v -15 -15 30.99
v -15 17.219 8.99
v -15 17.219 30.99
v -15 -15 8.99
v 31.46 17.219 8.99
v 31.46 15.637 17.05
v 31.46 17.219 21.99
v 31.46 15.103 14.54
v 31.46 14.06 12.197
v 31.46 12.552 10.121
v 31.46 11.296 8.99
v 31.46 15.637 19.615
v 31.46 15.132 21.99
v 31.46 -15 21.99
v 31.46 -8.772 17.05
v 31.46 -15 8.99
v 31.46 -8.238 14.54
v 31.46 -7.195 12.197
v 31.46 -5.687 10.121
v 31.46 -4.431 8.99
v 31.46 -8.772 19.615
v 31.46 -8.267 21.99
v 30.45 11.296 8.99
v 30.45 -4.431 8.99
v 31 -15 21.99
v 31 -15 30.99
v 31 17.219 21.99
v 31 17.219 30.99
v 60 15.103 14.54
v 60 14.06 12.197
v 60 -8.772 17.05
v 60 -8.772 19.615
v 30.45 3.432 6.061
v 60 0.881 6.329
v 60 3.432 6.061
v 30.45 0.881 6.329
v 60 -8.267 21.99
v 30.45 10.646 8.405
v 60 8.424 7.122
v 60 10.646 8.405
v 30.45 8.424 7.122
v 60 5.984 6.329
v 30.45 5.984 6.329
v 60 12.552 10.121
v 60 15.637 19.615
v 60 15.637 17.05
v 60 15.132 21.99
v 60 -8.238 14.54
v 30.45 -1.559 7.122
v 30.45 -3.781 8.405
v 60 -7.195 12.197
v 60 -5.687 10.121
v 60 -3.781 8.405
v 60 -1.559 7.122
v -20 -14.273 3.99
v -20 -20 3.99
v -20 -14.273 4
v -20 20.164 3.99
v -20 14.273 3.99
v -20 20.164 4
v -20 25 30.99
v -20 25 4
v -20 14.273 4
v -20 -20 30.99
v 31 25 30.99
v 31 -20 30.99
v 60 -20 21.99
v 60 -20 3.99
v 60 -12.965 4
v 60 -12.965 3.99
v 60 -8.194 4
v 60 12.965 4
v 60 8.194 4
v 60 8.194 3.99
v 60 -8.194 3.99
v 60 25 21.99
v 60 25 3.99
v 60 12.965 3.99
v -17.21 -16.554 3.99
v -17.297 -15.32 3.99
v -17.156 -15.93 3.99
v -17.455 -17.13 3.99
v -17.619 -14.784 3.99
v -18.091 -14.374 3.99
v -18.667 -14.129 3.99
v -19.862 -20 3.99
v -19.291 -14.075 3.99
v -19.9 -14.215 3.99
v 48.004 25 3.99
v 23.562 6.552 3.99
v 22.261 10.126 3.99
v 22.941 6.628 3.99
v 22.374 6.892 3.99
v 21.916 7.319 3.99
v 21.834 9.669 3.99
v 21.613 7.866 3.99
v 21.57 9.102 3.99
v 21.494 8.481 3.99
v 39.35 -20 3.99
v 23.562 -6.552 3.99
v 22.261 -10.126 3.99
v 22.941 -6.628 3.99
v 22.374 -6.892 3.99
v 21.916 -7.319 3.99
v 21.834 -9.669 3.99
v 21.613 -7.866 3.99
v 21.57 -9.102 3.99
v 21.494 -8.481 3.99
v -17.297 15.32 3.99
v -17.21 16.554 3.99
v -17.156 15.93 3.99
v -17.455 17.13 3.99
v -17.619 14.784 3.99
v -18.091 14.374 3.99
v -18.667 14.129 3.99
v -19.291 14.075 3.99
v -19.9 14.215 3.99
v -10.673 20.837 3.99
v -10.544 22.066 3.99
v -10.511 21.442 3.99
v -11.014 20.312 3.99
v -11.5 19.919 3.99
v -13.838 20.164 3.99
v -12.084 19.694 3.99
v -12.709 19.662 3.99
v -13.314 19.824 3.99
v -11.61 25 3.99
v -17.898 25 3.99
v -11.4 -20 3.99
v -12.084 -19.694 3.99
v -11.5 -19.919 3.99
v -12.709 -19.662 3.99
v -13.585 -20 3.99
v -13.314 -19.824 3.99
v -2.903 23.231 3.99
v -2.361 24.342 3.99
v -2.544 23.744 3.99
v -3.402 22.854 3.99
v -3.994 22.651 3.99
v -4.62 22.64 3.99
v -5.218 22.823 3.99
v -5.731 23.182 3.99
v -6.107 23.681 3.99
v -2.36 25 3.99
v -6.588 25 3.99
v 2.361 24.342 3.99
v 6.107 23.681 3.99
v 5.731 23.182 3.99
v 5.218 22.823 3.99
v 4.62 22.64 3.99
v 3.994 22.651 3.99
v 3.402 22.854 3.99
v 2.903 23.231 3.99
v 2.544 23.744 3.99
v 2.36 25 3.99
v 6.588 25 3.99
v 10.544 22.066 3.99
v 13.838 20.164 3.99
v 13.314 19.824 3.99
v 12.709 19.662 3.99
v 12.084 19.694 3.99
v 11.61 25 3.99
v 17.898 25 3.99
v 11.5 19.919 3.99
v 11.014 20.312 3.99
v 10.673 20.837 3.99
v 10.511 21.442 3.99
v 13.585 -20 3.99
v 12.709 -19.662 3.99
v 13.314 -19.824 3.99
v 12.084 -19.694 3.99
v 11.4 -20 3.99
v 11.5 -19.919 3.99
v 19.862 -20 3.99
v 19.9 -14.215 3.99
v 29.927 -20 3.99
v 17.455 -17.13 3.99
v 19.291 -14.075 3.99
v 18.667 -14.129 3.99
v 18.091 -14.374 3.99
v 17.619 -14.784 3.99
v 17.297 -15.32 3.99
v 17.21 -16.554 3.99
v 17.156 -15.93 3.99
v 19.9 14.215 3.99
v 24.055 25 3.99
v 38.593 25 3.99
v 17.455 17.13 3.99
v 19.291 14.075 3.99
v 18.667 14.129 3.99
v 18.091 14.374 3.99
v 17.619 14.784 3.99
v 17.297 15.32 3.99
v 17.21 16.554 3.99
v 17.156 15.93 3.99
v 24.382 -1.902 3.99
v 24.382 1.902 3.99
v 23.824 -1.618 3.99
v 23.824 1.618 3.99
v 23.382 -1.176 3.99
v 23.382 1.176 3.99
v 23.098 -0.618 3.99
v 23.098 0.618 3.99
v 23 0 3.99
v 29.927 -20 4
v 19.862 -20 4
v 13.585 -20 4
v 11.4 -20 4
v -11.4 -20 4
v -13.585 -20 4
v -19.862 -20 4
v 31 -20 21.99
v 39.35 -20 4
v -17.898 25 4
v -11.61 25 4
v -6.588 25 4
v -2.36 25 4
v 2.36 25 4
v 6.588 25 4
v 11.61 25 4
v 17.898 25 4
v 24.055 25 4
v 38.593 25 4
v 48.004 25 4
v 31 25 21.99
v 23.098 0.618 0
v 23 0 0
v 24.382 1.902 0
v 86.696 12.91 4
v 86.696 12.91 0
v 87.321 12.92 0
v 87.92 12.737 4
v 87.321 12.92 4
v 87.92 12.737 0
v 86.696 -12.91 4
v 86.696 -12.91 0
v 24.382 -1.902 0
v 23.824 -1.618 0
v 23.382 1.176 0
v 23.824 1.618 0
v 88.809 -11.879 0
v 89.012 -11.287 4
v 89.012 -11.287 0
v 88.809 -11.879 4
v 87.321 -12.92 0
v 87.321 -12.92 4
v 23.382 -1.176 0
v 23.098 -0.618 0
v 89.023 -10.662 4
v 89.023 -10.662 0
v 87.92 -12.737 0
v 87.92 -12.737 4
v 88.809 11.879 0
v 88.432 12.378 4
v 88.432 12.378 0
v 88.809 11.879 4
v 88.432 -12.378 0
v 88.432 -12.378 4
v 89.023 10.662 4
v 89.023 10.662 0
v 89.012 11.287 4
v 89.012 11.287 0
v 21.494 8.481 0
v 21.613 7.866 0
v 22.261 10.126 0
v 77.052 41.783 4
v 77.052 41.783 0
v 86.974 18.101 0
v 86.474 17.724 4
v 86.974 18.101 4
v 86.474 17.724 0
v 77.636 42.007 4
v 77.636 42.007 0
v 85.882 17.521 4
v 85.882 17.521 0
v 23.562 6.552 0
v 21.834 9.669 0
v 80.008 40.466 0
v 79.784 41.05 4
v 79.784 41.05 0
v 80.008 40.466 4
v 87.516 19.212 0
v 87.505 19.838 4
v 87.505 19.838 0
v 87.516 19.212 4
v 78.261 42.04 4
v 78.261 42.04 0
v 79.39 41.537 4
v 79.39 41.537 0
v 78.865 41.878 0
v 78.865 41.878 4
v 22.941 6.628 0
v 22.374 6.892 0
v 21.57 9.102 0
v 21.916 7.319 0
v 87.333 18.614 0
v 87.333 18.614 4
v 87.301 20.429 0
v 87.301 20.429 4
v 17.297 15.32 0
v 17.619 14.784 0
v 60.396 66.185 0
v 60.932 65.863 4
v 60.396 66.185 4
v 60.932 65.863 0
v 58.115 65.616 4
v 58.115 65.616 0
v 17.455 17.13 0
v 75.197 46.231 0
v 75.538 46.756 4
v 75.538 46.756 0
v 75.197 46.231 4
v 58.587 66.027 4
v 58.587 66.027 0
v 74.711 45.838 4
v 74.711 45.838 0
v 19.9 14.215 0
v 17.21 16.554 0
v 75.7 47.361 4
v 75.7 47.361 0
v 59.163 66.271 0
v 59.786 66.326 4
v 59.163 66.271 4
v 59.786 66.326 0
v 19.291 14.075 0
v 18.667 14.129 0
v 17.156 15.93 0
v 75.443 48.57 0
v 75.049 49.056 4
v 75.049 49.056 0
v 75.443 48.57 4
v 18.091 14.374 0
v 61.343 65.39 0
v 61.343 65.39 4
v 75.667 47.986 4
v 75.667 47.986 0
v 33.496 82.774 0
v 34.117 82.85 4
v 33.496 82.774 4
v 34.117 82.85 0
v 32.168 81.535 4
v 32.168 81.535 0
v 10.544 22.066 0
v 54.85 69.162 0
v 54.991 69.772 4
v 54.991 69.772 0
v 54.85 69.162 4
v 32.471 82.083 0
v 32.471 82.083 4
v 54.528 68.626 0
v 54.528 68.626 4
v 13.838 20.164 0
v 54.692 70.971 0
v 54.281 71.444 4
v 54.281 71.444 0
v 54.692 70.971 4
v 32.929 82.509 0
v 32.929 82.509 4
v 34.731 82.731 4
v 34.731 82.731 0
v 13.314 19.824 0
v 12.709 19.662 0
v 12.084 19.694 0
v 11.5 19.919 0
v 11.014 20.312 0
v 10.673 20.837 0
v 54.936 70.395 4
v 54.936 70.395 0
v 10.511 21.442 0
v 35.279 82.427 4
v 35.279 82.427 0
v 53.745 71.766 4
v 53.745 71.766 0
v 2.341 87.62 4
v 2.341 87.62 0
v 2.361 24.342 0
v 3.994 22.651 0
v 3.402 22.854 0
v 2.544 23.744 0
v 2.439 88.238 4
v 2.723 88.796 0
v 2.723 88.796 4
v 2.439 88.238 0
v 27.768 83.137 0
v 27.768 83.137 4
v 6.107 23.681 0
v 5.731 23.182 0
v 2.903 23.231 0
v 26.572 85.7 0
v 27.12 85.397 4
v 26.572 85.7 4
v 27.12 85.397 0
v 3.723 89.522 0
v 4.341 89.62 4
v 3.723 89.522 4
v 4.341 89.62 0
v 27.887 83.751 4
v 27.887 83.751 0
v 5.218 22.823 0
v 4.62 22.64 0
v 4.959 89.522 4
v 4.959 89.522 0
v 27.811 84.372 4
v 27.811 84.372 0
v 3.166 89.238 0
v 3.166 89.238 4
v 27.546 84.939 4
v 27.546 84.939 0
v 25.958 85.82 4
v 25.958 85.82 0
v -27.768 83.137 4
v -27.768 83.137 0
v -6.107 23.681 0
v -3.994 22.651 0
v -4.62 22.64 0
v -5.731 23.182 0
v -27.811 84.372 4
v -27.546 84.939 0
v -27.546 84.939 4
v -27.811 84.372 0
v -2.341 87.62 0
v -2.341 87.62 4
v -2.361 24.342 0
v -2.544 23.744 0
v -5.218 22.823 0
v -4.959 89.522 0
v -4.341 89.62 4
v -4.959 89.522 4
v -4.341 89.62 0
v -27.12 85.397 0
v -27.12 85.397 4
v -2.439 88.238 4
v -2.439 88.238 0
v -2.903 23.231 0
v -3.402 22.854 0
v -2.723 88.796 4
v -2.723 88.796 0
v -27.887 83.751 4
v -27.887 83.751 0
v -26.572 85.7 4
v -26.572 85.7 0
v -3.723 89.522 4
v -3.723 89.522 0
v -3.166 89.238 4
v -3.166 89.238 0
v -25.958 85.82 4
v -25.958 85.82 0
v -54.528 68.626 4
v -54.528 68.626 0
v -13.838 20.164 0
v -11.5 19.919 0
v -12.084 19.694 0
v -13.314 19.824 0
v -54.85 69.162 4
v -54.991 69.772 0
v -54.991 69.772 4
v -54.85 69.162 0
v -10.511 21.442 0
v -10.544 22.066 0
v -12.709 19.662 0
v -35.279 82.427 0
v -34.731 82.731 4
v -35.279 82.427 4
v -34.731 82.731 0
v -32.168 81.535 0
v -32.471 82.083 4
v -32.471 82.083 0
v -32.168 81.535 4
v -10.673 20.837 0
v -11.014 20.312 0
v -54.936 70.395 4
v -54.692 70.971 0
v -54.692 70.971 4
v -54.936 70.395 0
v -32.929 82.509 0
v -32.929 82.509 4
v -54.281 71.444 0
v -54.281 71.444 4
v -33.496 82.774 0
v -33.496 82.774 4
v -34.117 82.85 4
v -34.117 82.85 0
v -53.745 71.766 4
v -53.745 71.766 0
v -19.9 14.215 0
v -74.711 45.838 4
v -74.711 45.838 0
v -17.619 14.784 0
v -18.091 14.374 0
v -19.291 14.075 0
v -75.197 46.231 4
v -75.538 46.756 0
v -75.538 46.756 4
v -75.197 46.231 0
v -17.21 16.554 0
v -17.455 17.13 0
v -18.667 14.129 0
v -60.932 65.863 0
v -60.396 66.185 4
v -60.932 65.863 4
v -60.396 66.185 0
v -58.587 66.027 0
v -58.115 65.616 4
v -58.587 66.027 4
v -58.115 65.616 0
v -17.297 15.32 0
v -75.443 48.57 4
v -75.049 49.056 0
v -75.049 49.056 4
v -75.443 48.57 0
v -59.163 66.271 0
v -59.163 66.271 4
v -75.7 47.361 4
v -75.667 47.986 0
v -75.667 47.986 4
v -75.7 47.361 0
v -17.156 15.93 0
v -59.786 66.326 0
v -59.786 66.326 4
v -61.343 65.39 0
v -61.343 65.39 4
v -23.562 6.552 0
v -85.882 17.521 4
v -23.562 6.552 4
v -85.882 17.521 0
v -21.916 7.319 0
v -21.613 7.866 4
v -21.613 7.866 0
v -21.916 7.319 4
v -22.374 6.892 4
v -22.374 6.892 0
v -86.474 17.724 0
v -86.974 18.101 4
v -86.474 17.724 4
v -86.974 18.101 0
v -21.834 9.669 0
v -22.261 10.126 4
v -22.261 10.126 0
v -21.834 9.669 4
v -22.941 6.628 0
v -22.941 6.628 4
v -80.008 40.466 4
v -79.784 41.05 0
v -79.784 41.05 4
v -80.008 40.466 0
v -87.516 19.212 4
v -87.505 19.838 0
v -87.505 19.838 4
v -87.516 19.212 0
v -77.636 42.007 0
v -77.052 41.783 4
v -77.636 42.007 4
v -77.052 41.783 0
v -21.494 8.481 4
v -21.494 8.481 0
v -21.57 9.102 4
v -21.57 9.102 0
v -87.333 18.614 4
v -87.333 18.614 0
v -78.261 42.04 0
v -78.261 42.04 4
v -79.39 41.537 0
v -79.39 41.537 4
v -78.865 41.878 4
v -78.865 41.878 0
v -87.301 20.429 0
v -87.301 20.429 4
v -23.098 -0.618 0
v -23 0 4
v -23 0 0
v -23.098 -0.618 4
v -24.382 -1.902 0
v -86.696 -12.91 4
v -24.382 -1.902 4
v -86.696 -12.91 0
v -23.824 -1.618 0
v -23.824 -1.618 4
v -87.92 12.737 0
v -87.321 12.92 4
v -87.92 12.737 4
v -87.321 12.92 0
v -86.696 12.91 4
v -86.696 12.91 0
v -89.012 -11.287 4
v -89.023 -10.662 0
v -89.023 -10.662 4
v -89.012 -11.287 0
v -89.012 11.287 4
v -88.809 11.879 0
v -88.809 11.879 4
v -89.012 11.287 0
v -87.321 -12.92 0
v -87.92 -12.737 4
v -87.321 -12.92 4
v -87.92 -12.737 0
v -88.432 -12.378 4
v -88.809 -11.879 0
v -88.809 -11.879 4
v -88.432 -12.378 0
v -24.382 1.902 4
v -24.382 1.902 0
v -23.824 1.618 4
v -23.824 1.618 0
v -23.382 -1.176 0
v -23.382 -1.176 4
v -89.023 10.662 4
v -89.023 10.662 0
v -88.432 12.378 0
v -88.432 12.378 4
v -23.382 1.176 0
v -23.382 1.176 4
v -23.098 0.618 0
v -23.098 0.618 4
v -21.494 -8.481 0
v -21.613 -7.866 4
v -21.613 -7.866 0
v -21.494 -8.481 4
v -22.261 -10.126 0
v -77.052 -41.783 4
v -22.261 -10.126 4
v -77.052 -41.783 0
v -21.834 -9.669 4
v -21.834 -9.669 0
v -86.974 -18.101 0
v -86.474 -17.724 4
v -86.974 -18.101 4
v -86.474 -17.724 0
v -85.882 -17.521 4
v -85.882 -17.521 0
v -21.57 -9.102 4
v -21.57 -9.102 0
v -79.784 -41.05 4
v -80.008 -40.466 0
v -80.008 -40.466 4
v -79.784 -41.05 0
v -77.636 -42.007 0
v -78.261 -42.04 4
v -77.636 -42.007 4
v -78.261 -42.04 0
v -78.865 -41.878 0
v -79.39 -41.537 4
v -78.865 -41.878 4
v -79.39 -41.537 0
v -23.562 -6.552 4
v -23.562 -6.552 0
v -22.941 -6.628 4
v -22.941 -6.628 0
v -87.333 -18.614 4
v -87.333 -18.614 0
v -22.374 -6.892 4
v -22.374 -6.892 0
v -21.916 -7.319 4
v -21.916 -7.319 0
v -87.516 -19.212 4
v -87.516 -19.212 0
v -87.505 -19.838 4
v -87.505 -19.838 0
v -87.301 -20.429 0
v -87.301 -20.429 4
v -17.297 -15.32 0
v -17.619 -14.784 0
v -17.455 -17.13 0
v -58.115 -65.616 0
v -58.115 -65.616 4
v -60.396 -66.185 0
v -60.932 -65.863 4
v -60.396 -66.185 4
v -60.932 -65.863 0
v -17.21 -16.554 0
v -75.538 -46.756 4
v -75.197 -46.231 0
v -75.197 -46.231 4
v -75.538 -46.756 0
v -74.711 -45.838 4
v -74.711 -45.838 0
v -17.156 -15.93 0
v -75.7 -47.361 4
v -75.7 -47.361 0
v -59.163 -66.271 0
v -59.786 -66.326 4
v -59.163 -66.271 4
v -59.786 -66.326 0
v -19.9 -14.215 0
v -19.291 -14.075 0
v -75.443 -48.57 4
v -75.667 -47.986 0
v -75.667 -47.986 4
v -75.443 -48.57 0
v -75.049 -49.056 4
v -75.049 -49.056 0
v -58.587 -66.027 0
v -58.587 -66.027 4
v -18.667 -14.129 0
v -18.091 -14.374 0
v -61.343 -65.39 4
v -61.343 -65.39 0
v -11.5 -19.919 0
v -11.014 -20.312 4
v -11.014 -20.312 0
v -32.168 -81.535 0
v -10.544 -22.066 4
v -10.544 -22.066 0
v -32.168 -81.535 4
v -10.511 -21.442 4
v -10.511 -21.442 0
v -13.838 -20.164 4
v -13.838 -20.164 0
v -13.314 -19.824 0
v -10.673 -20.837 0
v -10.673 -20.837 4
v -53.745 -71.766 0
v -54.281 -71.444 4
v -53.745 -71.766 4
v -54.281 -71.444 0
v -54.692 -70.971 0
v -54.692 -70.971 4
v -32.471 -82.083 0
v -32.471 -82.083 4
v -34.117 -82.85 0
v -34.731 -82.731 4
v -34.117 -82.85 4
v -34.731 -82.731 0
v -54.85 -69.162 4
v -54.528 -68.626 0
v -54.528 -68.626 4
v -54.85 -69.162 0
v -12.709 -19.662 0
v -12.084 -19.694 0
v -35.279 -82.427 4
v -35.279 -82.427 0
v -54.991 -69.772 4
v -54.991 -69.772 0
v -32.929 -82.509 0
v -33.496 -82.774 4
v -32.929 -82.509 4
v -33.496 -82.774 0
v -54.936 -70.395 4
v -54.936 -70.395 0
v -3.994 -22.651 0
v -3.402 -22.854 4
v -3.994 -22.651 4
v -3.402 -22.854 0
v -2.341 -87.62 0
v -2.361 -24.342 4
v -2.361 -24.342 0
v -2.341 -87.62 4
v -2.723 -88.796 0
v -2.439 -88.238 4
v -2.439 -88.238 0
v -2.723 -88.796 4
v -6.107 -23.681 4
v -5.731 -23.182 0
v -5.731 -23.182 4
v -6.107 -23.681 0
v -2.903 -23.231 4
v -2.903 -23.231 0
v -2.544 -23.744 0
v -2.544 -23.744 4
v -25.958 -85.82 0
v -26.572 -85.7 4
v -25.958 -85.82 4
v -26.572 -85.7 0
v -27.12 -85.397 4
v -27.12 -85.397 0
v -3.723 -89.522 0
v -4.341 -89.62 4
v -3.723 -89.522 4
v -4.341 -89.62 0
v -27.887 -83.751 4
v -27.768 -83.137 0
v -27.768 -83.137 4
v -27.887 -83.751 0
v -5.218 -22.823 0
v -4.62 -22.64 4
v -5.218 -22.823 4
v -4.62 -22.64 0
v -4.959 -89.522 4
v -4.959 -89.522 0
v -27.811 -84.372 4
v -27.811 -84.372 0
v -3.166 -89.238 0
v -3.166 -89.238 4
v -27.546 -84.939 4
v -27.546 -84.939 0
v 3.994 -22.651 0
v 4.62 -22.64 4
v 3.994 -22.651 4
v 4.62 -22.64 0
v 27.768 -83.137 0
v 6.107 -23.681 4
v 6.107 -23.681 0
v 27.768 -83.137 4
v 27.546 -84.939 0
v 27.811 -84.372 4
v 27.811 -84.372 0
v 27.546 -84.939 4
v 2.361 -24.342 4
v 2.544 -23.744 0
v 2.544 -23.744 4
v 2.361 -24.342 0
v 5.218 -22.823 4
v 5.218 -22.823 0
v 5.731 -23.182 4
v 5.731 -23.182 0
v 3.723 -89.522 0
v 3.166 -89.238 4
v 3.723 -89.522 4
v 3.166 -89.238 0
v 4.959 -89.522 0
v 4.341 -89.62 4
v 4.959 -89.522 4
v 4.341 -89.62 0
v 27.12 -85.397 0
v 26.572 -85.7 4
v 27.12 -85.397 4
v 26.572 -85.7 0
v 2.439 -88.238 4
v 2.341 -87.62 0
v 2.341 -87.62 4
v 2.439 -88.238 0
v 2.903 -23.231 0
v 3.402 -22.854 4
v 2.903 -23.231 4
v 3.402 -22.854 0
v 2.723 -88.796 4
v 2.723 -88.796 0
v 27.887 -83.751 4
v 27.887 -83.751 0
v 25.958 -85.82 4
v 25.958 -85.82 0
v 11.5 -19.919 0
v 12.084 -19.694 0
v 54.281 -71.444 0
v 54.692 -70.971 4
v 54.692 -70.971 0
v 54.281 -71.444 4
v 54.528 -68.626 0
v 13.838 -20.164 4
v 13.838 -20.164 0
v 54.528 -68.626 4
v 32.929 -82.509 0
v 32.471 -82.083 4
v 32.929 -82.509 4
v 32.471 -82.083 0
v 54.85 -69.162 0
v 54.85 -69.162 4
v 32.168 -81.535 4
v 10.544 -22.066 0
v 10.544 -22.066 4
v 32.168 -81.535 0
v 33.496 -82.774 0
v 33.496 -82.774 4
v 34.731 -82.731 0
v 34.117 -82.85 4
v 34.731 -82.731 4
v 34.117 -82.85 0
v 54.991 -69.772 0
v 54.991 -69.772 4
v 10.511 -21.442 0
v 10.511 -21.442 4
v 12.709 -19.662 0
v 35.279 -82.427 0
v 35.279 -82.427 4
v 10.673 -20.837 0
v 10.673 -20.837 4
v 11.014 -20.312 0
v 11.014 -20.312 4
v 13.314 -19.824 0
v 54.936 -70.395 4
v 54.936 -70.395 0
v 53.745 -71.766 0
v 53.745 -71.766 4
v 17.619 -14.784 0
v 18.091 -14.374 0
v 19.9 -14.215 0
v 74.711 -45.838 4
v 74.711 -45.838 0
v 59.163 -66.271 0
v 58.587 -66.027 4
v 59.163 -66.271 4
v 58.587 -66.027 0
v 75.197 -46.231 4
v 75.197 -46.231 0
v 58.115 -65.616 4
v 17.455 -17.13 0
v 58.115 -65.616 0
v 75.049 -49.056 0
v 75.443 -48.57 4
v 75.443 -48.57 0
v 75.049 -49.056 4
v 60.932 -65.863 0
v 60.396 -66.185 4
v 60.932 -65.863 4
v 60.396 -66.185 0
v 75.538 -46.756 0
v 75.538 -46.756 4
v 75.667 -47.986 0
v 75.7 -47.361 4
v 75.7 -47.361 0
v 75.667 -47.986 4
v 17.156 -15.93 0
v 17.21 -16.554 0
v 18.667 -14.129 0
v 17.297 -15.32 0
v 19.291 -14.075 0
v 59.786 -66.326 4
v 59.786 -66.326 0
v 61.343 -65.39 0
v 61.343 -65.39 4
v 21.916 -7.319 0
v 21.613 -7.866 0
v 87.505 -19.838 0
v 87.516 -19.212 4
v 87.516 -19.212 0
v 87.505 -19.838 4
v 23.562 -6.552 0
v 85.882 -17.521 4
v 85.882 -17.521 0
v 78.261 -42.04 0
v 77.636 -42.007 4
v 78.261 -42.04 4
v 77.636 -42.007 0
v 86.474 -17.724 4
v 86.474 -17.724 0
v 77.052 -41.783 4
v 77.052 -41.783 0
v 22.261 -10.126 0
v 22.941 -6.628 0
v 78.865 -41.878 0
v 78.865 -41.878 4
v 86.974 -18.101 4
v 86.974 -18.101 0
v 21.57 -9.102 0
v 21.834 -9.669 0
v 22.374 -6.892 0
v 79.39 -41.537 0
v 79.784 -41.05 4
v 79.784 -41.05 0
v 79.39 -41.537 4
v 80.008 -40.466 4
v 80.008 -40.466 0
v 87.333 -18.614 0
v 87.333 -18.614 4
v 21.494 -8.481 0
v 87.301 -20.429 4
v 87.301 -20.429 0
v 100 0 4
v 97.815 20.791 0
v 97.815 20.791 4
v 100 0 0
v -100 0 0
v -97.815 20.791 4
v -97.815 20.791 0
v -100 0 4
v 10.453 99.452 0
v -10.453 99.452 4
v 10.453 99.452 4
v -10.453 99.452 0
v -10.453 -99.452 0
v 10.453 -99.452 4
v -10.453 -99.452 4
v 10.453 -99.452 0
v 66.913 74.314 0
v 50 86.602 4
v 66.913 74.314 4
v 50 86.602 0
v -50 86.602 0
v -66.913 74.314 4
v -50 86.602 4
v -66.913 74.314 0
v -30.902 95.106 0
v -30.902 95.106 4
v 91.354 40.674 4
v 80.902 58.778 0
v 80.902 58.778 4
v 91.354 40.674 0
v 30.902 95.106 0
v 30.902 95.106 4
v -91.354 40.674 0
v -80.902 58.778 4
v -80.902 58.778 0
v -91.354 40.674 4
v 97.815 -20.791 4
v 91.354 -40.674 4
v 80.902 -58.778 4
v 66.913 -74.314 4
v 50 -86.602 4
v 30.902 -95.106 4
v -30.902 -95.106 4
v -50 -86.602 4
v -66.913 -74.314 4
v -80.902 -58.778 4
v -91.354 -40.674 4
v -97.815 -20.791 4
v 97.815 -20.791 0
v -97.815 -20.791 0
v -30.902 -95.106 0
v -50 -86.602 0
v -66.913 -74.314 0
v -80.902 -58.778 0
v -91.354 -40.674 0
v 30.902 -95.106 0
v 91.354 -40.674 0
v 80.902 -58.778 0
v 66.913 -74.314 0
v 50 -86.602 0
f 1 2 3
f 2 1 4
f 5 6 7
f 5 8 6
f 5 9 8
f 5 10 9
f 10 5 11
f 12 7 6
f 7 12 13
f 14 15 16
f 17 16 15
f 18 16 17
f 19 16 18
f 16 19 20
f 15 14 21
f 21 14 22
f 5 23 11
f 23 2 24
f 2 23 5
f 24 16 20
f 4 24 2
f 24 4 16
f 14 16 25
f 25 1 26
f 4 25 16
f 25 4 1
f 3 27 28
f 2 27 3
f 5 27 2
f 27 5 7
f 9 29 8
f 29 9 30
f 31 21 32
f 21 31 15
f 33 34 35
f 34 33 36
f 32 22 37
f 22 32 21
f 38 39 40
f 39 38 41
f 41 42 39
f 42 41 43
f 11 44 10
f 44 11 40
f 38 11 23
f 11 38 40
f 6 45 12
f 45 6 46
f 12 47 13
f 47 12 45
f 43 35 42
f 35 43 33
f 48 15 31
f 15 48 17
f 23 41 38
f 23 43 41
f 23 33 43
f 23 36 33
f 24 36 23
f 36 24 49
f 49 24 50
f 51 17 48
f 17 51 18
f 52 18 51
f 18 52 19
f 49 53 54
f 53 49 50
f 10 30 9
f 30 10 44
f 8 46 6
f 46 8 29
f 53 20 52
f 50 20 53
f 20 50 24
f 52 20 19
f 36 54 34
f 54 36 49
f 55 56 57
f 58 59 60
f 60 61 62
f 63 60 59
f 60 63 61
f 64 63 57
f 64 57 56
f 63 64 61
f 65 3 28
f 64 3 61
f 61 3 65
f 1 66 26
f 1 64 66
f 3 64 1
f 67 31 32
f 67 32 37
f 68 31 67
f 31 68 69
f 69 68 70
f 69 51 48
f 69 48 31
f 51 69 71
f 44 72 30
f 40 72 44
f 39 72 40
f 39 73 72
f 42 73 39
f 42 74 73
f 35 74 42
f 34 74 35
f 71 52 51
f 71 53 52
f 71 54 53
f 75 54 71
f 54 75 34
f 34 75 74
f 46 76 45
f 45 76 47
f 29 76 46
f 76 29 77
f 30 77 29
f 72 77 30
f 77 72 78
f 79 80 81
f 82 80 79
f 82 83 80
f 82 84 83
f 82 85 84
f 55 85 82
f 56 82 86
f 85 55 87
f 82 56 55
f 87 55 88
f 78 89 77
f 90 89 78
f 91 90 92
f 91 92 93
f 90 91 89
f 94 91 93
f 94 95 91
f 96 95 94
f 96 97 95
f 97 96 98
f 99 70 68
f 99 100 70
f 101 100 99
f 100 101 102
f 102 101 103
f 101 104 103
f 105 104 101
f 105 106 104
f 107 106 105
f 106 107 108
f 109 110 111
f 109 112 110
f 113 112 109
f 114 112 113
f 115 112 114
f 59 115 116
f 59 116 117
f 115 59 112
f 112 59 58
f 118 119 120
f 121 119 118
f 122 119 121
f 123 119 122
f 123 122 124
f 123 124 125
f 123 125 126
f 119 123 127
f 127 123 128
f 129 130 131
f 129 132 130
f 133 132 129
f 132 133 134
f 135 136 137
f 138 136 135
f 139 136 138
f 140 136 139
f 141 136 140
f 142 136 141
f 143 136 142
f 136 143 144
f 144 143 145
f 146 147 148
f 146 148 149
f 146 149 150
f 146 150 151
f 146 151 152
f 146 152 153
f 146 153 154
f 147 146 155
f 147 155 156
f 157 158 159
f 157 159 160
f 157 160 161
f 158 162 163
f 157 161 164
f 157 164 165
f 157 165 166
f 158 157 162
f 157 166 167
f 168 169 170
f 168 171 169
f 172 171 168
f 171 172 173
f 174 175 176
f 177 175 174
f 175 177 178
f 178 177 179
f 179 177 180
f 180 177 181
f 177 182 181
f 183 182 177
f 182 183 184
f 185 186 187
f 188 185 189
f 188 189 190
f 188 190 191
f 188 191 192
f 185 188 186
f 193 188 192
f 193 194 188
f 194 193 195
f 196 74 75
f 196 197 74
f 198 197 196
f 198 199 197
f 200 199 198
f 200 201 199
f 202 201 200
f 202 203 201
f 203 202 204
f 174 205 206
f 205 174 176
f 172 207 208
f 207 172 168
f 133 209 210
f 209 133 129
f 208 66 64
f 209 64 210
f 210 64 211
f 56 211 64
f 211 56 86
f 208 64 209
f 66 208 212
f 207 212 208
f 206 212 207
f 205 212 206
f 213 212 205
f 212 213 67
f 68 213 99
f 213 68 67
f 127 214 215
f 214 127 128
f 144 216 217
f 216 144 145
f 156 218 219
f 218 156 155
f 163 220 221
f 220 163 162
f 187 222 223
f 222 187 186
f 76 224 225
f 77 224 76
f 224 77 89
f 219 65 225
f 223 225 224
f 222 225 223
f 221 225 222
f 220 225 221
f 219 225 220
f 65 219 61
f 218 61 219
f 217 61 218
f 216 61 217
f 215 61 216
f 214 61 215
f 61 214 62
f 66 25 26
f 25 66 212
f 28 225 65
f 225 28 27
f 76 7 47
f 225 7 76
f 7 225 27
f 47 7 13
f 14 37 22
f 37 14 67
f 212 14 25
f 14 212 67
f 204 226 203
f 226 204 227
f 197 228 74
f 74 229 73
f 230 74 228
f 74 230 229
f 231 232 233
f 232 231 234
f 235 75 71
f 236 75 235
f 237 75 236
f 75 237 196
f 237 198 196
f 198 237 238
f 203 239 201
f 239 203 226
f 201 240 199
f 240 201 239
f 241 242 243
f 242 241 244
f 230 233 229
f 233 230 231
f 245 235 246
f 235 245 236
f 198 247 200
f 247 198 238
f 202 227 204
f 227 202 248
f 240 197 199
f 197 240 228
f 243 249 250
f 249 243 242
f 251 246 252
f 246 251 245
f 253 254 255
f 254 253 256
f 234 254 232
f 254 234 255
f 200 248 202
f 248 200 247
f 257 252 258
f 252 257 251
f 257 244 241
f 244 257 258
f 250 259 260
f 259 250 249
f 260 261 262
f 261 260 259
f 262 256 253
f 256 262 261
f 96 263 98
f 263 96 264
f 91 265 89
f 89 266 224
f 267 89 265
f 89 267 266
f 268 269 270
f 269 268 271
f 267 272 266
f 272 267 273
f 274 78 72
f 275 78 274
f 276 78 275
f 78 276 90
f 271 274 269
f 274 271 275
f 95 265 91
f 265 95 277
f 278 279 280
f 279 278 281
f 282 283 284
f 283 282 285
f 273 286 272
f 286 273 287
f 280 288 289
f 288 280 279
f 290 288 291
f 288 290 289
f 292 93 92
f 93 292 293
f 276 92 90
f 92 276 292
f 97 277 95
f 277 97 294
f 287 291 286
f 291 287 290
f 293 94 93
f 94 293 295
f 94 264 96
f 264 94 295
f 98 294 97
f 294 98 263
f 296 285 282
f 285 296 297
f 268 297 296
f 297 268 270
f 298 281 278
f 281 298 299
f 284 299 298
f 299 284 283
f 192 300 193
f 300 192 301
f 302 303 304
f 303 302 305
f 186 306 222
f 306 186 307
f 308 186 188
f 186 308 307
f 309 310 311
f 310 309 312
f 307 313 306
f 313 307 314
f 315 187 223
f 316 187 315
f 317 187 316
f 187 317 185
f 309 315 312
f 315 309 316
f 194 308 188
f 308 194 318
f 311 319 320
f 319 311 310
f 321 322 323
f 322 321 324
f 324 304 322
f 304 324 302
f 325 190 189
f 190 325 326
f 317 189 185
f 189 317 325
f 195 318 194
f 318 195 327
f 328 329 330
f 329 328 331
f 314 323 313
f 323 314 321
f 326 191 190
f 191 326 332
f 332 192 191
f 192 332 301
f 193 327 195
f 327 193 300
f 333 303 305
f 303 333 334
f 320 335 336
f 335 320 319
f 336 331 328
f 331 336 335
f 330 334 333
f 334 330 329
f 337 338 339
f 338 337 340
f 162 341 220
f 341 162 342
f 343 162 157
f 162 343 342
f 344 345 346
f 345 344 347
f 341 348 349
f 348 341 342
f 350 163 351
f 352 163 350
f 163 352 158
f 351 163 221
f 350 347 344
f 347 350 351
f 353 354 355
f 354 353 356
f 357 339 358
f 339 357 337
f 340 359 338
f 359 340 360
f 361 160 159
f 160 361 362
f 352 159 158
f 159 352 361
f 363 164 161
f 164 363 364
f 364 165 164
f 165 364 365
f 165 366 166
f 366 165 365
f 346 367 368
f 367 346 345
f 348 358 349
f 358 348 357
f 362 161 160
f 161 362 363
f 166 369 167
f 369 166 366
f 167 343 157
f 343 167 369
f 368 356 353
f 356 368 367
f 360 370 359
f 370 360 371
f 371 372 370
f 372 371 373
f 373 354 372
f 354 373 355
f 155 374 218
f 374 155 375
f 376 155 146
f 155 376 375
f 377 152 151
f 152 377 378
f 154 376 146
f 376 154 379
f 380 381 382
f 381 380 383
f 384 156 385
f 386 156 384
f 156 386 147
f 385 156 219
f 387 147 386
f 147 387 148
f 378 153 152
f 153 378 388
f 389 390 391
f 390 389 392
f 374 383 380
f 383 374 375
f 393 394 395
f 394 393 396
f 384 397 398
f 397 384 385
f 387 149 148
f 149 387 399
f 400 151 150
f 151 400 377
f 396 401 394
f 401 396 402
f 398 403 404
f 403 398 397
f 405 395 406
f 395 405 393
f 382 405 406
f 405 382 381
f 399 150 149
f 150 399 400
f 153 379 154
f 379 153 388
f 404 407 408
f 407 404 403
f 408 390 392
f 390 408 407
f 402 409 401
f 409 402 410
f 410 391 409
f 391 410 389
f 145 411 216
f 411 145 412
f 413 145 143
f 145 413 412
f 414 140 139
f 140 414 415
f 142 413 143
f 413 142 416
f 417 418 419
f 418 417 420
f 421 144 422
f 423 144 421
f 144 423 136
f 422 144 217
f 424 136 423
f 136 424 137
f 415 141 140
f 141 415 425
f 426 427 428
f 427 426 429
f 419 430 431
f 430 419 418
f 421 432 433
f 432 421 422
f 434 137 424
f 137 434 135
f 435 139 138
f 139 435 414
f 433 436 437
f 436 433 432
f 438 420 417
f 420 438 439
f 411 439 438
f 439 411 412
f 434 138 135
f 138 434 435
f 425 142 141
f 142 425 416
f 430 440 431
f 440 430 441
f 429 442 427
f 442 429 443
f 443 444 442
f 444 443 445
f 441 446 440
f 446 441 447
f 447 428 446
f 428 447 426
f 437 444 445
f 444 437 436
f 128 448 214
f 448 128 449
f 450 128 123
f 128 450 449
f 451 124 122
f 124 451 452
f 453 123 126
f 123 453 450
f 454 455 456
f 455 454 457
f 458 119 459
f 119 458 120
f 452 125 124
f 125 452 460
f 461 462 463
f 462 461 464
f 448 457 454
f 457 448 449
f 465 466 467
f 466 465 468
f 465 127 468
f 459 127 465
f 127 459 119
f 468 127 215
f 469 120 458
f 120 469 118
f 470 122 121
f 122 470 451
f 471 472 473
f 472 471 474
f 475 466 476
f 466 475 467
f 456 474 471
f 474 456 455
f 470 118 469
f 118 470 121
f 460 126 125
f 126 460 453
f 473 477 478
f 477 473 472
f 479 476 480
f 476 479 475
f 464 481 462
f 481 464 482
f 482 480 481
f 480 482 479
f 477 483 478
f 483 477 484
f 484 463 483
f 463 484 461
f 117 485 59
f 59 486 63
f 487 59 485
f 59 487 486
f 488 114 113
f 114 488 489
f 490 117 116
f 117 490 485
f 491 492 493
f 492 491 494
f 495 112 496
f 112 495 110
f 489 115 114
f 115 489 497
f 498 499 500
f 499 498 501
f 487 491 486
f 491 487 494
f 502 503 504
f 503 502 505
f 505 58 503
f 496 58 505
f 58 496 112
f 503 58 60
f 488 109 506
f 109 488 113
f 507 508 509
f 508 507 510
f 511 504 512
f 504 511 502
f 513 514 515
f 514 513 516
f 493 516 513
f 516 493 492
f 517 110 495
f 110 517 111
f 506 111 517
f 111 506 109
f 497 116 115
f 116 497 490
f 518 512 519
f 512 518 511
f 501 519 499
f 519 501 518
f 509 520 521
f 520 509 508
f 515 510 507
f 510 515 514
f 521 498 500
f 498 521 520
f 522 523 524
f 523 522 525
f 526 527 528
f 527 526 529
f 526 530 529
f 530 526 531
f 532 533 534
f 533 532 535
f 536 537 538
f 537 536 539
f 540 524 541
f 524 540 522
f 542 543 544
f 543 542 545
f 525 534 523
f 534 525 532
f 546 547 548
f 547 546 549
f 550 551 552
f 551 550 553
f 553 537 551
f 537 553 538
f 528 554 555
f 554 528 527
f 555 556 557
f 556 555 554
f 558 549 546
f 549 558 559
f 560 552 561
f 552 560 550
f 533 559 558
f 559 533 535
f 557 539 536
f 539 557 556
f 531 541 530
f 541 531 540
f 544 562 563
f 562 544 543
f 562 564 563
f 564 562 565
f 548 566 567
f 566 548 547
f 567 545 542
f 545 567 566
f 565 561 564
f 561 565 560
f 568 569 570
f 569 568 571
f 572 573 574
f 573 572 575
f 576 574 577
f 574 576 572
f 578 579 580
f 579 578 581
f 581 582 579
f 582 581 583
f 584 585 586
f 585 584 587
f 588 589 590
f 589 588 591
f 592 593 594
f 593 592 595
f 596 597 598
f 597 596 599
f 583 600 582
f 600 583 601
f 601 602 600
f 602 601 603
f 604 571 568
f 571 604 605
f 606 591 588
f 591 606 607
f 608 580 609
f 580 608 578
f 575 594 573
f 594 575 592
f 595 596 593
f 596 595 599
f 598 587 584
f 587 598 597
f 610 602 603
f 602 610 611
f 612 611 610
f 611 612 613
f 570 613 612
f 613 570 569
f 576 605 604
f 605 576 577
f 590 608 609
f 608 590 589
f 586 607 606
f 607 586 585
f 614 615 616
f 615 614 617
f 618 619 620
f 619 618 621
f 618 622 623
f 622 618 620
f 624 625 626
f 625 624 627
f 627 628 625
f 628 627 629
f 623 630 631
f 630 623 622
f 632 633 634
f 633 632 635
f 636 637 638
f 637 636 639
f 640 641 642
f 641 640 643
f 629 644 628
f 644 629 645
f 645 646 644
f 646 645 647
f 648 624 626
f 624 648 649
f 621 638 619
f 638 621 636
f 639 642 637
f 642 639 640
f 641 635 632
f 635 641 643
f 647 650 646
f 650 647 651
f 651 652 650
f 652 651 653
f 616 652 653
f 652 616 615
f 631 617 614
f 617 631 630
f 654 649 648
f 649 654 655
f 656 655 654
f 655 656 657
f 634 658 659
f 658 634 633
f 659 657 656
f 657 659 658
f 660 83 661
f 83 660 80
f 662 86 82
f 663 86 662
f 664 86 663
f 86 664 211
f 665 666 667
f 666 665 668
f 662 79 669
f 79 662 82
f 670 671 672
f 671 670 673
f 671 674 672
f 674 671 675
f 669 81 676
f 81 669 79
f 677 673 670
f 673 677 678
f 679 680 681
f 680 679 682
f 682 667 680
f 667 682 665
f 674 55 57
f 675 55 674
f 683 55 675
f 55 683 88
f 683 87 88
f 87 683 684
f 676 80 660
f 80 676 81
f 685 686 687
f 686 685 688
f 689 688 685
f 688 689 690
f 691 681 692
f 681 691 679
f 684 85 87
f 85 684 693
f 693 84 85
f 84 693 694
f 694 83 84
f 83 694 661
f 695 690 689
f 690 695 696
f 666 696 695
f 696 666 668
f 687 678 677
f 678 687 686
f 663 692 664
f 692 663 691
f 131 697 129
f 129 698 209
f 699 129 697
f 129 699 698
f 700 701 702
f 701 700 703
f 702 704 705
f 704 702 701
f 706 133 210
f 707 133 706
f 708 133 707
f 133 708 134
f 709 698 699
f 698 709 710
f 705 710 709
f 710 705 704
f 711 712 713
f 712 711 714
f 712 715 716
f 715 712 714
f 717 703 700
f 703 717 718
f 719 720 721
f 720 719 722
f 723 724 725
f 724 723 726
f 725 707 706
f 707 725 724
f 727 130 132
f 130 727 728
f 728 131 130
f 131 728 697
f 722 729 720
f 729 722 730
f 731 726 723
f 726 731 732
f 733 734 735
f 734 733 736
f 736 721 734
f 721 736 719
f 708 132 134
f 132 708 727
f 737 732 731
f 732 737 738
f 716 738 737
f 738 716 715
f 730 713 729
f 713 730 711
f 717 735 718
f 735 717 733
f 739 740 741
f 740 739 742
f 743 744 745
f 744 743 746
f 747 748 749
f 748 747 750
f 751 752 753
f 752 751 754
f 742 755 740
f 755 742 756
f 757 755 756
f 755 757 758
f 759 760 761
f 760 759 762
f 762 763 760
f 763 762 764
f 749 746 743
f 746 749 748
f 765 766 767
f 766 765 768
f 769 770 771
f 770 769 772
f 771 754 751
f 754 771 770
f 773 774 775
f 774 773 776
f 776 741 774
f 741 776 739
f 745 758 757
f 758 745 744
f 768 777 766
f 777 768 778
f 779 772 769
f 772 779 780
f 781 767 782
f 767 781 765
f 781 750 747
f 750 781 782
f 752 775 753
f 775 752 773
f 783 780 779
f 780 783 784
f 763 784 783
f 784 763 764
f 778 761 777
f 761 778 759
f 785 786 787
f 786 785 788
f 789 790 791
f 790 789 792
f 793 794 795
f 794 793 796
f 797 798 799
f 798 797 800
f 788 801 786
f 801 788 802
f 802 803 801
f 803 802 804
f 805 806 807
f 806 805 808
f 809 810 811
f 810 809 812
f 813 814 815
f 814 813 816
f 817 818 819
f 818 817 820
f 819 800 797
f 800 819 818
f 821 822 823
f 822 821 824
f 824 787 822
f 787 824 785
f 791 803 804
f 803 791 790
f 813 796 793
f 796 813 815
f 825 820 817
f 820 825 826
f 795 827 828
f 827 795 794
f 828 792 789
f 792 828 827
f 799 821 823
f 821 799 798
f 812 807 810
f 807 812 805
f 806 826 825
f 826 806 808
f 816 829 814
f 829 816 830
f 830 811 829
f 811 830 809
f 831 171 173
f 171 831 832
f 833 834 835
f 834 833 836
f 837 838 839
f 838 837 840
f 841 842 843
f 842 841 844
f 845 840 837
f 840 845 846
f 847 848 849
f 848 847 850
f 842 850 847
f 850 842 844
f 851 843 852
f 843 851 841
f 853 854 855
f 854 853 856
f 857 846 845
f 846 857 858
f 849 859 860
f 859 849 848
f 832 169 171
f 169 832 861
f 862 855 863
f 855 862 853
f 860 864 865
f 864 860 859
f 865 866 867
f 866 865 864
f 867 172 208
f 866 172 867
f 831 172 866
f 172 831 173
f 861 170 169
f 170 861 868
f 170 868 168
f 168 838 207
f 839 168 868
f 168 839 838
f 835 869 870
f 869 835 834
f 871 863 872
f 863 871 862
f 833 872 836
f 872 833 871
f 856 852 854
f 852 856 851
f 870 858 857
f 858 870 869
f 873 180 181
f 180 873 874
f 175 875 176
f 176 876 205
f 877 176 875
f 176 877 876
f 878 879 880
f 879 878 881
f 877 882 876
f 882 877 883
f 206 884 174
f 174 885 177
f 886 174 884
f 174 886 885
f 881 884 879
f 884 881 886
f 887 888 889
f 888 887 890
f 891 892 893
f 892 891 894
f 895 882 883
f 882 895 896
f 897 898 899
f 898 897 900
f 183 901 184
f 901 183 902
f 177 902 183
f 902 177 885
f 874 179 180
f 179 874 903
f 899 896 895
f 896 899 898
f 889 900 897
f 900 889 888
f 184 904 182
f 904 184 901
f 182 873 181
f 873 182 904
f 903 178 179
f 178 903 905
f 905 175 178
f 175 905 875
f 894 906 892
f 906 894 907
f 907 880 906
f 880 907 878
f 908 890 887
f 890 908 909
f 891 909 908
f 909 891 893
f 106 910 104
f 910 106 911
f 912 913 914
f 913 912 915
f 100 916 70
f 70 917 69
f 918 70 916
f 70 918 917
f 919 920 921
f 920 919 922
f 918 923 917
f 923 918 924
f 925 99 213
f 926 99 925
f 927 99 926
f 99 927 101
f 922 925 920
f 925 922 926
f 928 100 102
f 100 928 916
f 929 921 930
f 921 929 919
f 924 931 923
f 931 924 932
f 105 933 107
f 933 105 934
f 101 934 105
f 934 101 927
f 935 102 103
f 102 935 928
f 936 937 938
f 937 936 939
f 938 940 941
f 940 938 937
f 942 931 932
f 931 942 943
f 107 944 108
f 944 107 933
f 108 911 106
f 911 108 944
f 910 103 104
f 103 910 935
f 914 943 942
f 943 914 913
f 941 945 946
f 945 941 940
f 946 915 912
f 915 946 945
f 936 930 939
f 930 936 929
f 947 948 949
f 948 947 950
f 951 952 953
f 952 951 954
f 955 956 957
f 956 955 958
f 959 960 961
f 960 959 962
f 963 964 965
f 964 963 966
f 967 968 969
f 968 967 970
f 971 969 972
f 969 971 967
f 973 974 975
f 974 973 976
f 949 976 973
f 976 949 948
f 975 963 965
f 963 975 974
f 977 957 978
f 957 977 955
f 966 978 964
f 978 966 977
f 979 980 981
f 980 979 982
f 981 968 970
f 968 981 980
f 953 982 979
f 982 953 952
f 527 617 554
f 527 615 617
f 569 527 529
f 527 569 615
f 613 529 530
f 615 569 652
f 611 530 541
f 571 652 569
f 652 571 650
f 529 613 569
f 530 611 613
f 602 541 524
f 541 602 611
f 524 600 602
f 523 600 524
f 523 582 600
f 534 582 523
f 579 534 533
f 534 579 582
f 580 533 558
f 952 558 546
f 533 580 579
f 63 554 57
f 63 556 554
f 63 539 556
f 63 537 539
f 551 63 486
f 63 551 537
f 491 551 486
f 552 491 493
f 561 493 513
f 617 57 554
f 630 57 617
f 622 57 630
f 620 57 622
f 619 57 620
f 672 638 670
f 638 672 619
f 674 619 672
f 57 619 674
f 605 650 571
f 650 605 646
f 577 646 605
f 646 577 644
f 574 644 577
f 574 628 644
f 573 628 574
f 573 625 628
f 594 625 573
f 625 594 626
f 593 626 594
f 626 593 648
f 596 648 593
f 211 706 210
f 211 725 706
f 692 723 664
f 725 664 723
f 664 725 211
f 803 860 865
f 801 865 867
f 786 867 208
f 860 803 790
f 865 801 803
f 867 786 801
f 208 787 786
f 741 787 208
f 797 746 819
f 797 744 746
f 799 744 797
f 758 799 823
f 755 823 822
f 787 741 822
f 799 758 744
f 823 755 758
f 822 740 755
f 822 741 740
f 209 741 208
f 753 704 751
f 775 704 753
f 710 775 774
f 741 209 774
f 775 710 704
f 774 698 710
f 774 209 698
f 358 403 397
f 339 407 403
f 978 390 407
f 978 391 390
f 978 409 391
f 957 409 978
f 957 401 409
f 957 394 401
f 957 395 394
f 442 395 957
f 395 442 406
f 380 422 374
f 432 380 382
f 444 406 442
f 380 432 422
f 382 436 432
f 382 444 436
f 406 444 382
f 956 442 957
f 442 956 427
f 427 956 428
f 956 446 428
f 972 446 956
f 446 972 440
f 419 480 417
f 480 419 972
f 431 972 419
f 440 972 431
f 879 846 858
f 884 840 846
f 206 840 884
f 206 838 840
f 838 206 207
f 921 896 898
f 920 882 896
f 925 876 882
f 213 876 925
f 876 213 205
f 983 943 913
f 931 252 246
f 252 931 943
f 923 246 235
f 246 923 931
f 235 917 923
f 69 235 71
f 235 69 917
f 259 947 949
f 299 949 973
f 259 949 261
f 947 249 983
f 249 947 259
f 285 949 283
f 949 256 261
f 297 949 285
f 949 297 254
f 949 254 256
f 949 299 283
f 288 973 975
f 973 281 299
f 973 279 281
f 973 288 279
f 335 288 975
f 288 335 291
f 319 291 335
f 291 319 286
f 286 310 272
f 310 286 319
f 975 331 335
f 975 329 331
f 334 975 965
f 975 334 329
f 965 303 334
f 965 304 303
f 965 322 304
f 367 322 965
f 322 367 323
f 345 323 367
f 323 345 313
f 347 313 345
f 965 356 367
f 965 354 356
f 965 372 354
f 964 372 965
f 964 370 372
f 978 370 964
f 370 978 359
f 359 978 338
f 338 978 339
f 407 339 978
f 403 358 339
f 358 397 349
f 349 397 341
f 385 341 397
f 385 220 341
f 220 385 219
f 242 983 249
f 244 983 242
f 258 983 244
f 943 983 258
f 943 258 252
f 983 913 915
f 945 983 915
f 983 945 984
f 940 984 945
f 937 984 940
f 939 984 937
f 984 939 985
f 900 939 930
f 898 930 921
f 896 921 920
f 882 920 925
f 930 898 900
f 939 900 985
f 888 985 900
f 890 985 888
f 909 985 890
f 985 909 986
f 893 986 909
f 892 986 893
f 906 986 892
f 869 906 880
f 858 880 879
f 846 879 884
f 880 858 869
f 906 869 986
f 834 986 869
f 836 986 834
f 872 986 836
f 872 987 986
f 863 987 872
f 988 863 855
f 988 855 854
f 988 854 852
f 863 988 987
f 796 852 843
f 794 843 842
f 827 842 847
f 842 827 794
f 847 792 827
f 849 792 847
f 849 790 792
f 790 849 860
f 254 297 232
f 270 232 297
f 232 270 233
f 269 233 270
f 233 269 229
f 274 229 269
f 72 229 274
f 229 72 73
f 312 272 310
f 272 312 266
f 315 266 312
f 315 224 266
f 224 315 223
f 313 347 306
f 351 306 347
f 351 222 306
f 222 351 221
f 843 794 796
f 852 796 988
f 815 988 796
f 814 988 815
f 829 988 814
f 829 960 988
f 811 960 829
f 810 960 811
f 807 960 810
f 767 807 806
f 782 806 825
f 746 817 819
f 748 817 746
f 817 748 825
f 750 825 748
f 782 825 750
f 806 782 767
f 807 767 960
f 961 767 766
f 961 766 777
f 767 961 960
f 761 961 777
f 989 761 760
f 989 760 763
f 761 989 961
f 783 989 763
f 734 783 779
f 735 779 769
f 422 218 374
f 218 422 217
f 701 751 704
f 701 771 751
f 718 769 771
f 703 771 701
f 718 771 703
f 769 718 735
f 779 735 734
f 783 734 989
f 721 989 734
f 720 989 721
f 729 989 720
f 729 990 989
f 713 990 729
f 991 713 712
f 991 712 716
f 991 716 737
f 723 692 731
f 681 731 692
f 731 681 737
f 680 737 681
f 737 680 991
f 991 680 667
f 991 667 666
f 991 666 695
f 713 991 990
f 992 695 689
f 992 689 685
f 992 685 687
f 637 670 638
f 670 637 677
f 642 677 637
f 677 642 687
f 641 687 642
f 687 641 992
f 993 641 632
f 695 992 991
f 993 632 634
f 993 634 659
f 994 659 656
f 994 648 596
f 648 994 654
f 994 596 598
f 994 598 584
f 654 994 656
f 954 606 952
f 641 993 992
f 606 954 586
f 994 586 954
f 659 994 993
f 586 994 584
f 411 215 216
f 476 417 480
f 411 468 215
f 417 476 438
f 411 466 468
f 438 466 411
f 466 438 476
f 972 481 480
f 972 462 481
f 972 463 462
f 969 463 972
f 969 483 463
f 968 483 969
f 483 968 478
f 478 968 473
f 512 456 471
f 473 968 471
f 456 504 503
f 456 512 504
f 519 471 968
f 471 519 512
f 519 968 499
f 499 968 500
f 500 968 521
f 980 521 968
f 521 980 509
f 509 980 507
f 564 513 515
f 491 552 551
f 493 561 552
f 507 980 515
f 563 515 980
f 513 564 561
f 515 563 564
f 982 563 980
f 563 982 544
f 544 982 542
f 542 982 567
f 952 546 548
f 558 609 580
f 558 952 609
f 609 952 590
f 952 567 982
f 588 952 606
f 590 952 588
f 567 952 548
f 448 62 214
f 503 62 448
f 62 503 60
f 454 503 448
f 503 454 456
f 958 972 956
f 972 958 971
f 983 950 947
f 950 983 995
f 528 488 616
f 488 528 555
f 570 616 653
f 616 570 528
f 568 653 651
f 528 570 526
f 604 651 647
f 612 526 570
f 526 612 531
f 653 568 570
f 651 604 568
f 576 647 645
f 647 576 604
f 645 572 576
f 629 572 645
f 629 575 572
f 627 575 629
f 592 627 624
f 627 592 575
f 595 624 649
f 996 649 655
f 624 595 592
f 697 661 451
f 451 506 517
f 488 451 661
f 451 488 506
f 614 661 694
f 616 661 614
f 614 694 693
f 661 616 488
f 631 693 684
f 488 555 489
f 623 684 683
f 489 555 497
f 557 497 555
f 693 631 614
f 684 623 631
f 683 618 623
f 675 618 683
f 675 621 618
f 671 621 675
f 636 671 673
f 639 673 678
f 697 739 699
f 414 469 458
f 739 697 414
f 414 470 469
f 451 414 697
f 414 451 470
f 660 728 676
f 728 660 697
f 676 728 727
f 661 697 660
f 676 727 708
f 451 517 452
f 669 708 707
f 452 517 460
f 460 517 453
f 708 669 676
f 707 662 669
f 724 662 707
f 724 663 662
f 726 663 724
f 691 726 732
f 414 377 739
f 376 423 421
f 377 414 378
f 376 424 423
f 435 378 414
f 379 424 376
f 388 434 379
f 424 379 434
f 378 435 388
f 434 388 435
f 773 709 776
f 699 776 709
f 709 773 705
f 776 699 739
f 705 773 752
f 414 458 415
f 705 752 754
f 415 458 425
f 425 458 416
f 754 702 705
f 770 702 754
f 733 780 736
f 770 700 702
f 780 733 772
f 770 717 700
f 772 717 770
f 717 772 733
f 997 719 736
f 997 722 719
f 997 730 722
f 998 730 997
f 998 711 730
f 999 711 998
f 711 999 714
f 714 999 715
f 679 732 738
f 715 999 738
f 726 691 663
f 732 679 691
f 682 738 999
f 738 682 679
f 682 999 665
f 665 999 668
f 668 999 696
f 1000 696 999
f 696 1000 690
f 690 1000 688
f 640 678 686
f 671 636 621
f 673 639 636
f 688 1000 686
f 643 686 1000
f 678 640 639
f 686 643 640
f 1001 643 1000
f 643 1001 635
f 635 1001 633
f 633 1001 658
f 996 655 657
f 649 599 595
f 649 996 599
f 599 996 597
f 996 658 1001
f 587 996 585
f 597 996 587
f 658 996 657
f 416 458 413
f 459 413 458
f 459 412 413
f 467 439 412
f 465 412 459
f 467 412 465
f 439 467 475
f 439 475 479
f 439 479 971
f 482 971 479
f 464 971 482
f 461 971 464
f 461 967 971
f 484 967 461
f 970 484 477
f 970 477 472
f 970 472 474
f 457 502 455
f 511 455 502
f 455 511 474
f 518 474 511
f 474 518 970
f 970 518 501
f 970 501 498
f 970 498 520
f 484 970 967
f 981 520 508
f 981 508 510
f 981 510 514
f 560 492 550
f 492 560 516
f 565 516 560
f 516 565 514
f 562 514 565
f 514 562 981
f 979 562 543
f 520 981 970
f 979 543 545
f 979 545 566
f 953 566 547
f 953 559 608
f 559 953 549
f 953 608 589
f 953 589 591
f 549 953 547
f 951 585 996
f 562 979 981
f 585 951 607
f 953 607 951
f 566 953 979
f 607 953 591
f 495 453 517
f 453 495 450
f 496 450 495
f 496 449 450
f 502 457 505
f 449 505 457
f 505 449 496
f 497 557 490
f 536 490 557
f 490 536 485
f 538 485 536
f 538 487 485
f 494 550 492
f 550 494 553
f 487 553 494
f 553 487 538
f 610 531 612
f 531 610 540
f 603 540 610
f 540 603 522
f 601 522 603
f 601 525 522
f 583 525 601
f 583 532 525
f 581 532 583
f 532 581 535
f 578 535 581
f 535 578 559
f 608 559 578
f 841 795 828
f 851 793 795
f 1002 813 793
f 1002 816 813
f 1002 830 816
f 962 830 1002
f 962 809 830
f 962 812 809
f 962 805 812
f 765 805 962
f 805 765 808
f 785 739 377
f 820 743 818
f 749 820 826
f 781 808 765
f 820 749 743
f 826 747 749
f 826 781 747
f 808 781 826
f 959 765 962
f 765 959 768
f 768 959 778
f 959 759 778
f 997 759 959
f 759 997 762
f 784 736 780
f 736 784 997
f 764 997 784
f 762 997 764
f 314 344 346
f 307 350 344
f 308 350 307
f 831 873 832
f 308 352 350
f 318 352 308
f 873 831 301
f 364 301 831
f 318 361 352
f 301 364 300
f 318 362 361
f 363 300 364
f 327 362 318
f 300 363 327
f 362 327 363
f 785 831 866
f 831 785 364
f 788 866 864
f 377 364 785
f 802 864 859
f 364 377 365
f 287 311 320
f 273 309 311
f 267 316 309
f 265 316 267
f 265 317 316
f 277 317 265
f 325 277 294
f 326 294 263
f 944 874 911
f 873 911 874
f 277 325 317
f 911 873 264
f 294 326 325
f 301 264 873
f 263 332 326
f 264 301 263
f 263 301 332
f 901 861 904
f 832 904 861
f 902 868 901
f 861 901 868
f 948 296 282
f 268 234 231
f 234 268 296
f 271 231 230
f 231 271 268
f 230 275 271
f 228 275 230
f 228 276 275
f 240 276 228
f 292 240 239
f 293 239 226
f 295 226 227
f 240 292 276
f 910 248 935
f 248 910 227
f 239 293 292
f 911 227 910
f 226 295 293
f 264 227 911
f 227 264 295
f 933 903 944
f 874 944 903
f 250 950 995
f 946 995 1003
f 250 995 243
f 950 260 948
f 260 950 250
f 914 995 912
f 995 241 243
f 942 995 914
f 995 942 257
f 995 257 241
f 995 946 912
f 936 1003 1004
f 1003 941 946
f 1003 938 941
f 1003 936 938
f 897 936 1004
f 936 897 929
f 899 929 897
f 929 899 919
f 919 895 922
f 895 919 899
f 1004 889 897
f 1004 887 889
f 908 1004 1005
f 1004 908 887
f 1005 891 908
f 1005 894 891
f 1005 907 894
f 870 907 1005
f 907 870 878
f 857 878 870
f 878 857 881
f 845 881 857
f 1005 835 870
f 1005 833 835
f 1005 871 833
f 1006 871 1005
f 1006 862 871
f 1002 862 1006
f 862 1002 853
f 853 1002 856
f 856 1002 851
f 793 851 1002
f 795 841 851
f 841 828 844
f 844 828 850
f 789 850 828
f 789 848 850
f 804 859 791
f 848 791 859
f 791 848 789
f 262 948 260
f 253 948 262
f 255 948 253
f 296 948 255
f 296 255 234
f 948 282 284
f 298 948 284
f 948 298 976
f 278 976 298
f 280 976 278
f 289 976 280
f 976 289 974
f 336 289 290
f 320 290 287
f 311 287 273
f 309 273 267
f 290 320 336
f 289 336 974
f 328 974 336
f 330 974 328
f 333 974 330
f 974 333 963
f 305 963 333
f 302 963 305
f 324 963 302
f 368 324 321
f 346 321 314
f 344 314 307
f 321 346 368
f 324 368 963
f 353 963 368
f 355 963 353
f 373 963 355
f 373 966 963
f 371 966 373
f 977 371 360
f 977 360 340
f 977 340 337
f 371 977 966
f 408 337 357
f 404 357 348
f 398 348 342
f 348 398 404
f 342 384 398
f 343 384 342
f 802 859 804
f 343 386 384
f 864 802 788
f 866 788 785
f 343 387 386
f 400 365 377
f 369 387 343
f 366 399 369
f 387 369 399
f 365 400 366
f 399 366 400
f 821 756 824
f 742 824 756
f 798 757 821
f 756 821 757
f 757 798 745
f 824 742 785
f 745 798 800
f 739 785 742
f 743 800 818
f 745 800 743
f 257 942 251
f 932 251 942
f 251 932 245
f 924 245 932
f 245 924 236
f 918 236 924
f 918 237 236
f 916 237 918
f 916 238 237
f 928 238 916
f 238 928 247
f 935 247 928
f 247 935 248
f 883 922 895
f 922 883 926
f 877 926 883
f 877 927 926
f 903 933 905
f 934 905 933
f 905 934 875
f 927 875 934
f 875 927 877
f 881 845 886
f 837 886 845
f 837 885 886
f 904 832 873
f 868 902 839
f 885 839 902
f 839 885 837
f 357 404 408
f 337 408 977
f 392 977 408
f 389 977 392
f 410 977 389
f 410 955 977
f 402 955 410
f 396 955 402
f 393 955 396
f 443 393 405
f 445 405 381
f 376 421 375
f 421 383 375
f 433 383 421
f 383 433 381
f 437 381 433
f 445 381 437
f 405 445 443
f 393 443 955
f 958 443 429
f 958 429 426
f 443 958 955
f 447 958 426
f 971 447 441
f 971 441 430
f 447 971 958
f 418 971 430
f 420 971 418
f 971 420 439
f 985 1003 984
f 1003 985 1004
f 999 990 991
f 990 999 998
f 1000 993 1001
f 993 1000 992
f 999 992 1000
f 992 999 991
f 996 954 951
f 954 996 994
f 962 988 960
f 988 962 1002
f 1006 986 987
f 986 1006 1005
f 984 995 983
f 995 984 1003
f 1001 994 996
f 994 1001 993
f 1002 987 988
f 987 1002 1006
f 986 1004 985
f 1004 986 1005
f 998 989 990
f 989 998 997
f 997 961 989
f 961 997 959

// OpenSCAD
// file: ../GearMotor/GearMotor.scad
gearBlock=[46,31.9,21.8];

motorHeight=30.8;
motorDiameter=24.3;
motorOffset=[0,1.5,2.9];

axisDiameter=6.1;
axisHeight=15.8;
axisOffset=[14.6,15.9,gearBlock[2]];

mountingHoleDistance=[32.7,17.9,0];
mountingHoleOffset=[5.5,6.9,gearBlock[2]];
mountingHoleOuter=7.4;
mountingHoleInner=2.6;
mountingHoleZ=2.6;

debug=0;


// ========================================================================
translate([0,60,0]) GearMotor();
translate([0, 0,0]) GearMotorHolder();
// ========================================================================

module GearMotorHolder(){
if ( debug){
            translate([5,5,5])
                GearMotor();
}
    difference(){
        
        // Base Block
        cube([80,45,27]);

        // Keep motor Free
        translate([51,-1,18])
            cube([90,50,20]);

        // Motor
        translate([5,5,5])
            scale(1.01*[1,1,1])
                GearMotor();
    }
}


module GearMotor(){
    color("silver"){
        // Gear Block
        cube(gearBlock);

        // Motor
        translate(   [gearBlock[0],gearBlock[1],0]
                   + [0,-motorDiameter/2,motorDiameter/2]
                   - motorOffset
                   - [1,0,0] // For Overlap
                  )
            rotate([0,90,0])
                cylinder(h=motorHeight+1,d=motorDiameter);
                
                
        // Axis
        translate(
                  +[0,-axisDiameter/2,axisDiameter/2]
                  +axisOffset
                  )
        //    rotate([0,90,0])
                cylinder(h=axisHeight,d=axisDiameter);

        // Mounting Holes
        translate(mountingHoleOffset){
            for(x=[0,mountingHoleDistance[0]]){
                for(y=[0,mountingHoleDistance[1]]){
                    translate([x,y,0])
                        MoutingHole();
                }
            }
        }
    }
    
}

module MoutingHole(){
    difference(){
        cylinder(d=mountingHoleOuter,h=mountingHoleZ);
        translate([0,0,-.5])
            cylinder(d=mountingHoleInner,h=mountingHoleZ+1);
    }
}
// main file
baseDiscDiameter=200;
baseDiscHeight=4;

use <../GearMotor/GearMotor.scad>;

union(){
    translate([-20, -20,baseDiscHeight-.01]) {
        GearMotorHolder();
    }
    
    difference(){
         
        // Grundscheibe
        cylinder(h=baseDiscHeight,
                d=baseDiscDiameter);
     
        
        
        // Ausgeschnittene Dreiecke (Material sparen)
        cutOutInnerRadius=25;
        cutOutLen=(baseDiscDiameter/2)-cutOutInnerRadius-12;
        for ( angel=[0:20:360] ){
            rotate([0,0,angel])
                translate([cutOutInnerRadius,0,-.1])
                      triAngle(len=cutOutLen,h=baseDiscHeight+1);
    // cube([50,20,baseDiscHeight+2]);
        }
    }


}


module triAngle(len=40,angle=20,h=5){
    $fn = 20;
    cornerDiameter=2;
   hull () {
      translate([0,0,0]) cylinder(r=cornerDiameter,h=h);
      for ( a=[-angle/2,angle/2]){
        rotate([0,0,a])
            translate([len,0,0]) cylinder(r=cornerDiameter,h=h);
      }
    }
}
